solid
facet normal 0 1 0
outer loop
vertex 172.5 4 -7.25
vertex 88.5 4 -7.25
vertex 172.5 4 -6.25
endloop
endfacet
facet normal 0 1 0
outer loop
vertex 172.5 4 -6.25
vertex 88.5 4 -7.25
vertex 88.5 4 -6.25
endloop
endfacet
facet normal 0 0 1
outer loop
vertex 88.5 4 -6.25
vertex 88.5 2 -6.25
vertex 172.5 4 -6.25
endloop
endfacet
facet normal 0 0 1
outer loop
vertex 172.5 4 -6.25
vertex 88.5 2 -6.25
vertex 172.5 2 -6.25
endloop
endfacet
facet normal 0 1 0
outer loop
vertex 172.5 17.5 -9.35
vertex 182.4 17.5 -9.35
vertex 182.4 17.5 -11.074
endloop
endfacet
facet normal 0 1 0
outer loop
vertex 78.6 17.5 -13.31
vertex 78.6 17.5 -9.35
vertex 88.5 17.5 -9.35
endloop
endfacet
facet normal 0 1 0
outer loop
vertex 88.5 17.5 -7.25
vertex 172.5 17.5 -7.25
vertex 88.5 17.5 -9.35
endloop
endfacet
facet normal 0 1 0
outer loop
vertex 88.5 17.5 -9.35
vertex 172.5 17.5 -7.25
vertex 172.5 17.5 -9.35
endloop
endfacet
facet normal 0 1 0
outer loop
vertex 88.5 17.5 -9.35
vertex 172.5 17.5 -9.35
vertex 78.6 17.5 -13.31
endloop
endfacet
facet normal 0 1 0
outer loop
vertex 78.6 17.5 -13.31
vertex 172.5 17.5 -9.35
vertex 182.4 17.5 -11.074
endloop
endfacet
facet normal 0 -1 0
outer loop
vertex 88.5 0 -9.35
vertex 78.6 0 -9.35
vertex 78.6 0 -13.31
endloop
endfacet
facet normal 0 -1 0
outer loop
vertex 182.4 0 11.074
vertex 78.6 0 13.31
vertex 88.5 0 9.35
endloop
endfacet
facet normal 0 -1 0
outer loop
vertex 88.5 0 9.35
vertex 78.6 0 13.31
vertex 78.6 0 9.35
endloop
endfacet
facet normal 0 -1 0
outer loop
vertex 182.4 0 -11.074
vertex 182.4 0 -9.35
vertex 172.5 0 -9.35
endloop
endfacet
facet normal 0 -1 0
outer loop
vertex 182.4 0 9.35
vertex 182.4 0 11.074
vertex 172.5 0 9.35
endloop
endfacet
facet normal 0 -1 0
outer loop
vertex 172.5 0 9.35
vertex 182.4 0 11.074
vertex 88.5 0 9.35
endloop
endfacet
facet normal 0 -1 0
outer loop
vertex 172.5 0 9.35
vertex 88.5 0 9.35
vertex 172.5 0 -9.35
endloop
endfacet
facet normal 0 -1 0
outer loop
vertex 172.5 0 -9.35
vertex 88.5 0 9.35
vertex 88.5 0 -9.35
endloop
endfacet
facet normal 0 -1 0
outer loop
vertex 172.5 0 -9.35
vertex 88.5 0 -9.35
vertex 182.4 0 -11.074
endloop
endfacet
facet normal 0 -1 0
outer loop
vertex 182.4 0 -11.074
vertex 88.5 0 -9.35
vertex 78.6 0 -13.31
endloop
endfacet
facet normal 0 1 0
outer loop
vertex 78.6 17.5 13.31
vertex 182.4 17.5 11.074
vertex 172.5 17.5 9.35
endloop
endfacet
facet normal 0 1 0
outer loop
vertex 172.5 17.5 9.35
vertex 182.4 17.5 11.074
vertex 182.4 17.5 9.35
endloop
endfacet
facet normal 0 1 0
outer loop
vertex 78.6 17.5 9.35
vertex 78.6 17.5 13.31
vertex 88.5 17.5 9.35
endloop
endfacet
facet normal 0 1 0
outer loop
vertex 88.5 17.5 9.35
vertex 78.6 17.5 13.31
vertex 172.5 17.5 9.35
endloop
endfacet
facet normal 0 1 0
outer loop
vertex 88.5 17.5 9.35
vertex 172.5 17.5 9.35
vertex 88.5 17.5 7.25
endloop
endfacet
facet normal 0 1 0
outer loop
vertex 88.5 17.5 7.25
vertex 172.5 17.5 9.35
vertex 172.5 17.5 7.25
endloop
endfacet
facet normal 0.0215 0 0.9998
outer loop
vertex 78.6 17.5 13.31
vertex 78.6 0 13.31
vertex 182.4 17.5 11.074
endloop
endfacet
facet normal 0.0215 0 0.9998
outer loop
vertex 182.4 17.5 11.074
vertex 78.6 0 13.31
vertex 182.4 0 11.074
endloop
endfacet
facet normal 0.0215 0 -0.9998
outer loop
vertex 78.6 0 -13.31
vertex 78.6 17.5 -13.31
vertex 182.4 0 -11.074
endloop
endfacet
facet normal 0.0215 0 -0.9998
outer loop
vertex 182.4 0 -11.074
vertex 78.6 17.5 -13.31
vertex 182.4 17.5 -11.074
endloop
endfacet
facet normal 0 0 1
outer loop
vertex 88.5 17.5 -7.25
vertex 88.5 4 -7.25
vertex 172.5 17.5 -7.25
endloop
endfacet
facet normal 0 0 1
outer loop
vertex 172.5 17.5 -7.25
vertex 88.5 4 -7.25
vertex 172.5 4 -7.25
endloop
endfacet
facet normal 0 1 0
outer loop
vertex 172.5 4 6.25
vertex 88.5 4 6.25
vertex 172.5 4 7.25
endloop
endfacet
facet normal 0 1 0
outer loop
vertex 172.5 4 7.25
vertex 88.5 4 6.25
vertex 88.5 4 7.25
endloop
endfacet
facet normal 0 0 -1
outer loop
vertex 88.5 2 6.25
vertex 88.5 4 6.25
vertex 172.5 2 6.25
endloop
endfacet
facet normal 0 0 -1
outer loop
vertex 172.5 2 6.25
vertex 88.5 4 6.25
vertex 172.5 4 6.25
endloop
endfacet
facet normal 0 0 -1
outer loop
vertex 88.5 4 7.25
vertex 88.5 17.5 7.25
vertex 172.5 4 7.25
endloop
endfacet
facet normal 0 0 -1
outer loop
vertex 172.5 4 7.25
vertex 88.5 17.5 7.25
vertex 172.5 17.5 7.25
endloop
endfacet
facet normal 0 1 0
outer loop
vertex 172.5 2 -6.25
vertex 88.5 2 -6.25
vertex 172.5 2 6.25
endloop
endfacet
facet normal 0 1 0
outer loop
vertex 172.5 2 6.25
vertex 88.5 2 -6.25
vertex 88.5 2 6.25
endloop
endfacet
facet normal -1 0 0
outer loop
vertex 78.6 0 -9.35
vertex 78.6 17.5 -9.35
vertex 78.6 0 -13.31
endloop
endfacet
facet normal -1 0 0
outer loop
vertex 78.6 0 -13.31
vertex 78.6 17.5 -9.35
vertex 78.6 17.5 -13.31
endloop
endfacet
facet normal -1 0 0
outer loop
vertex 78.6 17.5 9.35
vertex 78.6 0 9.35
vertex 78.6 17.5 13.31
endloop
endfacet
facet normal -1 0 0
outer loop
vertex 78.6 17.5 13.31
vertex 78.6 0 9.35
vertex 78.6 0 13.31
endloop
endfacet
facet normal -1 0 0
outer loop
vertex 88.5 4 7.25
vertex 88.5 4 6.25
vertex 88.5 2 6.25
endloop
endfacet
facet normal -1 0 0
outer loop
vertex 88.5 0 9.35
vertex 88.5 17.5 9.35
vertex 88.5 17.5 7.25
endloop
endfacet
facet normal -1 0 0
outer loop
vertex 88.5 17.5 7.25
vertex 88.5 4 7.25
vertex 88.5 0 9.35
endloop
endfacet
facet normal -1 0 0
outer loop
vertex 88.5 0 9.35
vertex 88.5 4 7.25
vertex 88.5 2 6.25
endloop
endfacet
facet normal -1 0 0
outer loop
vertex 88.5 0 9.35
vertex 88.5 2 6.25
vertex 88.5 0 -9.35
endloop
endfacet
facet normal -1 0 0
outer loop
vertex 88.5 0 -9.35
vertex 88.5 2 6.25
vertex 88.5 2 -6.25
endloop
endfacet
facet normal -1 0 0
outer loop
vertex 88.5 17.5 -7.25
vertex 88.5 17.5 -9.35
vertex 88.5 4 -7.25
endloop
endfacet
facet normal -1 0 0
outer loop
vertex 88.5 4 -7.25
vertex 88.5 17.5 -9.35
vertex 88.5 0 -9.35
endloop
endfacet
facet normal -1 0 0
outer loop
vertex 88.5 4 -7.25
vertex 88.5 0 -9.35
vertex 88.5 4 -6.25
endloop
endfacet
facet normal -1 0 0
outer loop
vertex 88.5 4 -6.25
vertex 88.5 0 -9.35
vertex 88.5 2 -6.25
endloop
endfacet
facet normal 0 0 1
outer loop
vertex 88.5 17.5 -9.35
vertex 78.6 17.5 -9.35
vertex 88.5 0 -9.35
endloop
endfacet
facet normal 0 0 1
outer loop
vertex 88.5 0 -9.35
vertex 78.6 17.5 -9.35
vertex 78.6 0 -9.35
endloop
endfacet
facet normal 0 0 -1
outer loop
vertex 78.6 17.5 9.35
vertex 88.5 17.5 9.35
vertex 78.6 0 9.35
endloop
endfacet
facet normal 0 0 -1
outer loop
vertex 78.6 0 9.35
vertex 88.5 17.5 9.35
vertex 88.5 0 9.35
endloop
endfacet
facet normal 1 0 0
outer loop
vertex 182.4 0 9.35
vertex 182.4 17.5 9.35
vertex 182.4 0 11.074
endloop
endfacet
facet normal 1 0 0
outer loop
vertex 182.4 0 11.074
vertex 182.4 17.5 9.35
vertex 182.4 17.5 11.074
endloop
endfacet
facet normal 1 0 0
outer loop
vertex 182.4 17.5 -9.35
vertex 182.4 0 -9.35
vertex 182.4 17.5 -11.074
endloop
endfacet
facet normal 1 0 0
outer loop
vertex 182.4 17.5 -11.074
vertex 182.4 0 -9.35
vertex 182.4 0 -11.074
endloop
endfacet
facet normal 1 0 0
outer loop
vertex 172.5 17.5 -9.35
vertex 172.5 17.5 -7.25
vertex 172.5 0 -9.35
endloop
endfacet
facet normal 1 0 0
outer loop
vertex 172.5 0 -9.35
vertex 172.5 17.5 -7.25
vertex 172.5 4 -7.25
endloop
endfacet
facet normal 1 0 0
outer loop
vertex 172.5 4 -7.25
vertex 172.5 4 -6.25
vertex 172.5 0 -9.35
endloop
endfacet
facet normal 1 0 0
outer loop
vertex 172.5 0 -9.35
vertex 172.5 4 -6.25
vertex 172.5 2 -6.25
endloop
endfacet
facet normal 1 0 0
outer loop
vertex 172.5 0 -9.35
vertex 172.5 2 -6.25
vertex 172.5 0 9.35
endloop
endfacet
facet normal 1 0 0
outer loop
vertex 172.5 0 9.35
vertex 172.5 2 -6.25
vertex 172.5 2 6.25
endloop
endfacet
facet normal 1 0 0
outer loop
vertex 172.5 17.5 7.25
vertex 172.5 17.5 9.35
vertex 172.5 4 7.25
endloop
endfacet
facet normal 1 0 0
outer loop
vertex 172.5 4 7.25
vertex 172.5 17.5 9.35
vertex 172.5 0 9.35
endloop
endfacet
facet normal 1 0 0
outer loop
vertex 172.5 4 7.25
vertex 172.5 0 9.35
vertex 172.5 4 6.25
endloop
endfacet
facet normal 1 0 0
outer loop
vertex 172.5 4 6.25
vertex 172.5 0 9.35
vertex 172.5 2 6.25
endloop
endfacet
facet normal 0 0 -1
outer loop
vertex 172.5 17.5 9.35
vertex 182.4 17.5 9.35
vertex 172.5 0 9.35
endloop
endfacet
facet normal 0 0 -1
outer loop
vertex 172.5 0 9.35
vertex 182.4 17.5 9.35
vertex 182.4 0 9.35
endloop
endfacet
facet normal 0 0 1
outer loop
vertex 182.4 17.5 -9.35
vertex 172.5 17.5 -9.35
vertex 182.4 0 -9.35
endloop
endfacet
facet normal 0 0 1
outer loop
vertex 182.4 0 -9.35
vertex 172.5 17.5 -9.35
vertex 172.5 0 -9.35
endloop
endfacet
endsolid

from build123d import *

# Parameters (mm, degrees)
BOSS_EXTRUDE1_DEPTH     = 17.5
SKETCH2_W               = 252
SKETCH2_H               = 14.5
CUT_EXTRUDE1_DEPTH      = 15.5
SKETCH3_R               = 13
CUT_EXTRUDE2_DEPTH      = 15.5
CUT_EXTRUDE3_REACH      = 264.265
CUT_EXTRUDE3_END_RADIUS = 13
SKETCH5_W               = 252
SKETCH5_H               = 1
BOSS_EXTRUDE2_DEPTH     = 2
SKETCH6_R               = 1
CUT_EXTRUDE4_DEPTH      = 2
CUT_EXTRUDE9_DEPTH      = 278.209870862


with BuildPart() as part:
    # Sketch1 → Boss-Extrude1 (new body)
    with BuildSketch(Plane(origin=(0, 0, 0), x_dir=(1, 0, 0), z_dir=(0, 1, 0))):
        with BuildLine():
            Line((0.323033708, 14.996521237), (267.19920412, 9.247854763))
            ThreePointArc((267.19920412, 9.247854763), (276.25, 0), (267.19920412, -9.247854763))
            Line((267.19920412, -9.247854763), (0.323033708, -14.996521237))
            ThreePointArc((0.323033708, -14.996521237), (-15, 0), (0.323033708, 14.996521237))
        make_face()
    extrude(amount=BOSS_EXTRUDE1_DEPTH)

    # Sketch2 → Cut-Extrude1 (cut)
    with BuildSketch(Plane(origin=(0, 17.5, 0), x_dir=(1, 0, 0), z_dir=(0, 1, 0))):
        with Locations((141, 0)):
            Rectangle(SKETCH2_W, SKETCH2_H)
    extrude(amount=-CUT_EXTRUDE1_DEPTH, mode=Mode.SUBTRACT)

    # Sketch3 → Cut-Extrude2 (cut)
    with BuildSketch(Plane(origin=(0, 17.5, 0), x_dir=(1, 0, 0), z_dir=(0, 1, 0))):
        with Locations(Location((0, 0, 0), (0, 0, 270))):
            Circle(SKETCH3_R)
    extrude(amount=-CUT_EXTRUDE2_DEPTH, mode=Mode.SUBTRACT)

    # Cut-Extrude3: up to this cylinder (the profile starts outside it)
    cut_extrude3_end = Plane(origin=(0, 8.125709, 0), z_dir=(0, 1, 0)) * Cylinder(CUT_EXTRUDE3_END_RADIUS, 555.53, mode=Mode.PRIVATE)
    # Sketch4 → Cut-Extrude3 (cut, up to the surface)
    with BuildSketch(Plane(origin=(15, 0, 0), x_dir=(0, 0, -1), z_dir=(1, 0, 0)), mode=Mode.PRIVATE) as cut_extrude3_sk1:
        with BuildLine():
            Line((-7.25, 2), (7.25, 2))
            Line((7.25, 2), (7.25, 8.5))
            ThreePointArc((7.25, 8.5), (5.199747468, 13.449747468), (0.25, 15.5))
            Line((0.25, 15.5), (-0.25, 15.5))
            ThreePointArc((-0.25, 15.5), (-5.199747468, 13.449747468), (-7.25, 8.5))
            Line((-7.25, 8.5), (-7.25, 2))
        make_face()
    cut_extrude3_tool1 = extrude(cut_extrude3_sk1.sketch, amount=-CUT_EXTRUDE3_REACH, mode=Mode.PRIVATE) - cut_extrude3_end
    add(cut_extrude3_tool1.solids().sort_by_distance((15, 8.125709, 0))[0], mode=Mode.SUBTRACT)

    # Sketch5 → Boss-Extrude2 (add)
    with BuildSketch(Plane(origin=(0, 2, 0), x_dir=(1, 0, 0), z_dir=(0, 1, 0))):
        with Locations((141, 6.75)):
            Rectangle(SKETCH5_W, SKETCH5_H)
        with Locations((141, -6.75)):
            Rectangle(SKETCH5_W, SKETCH5_H)
    extrude(amount=BOSS_EXTRUDE2_DEPTH)

    # Sketch6 → Cut-Extrude4 (cut)
    with BuildSketch(Plane(origin=(0, 2, 0), x_dir=(1, 0, 0), z_dir=(0, 1, 0))):
        with Locations(Location((-5.25, 9.09326674, 0), (0, 0, 270))):
            Circle(SKETCH6_R)
        with Locations(Location((-10.5, 0, 0), (0, 0, 270))):
            Circle(SKETCH6_R)
        with Locations(Location((5.25, 9.09326674, 0), (0, 0, 270))):
            Circle(SKETCH6_R)
        with Locations(Location((10.5, 0, 0), (0, 0, 270))):
            Circle(SKETCH6_R)
        with Locations(Location((5.25, -9.09326674, 0), (0, 0, 270))):
            Circle(SKETCH6_R)
        with Locations(Location((-5.25, -9.09326674, 0), (0, 0, 270))):
            Circle(SKETCH6_R)
        Polygon((0, -10), (8.660254038, -5), (8.660254038, 5), (0, 10), (-8.660254038, 5), (-8.660254038, -5), align=None)
    extrude(amount=-CUT_EXTRUDE4_DEPTH, mode=Mode.SUBTRACT)

    # Sketch14 → Cut-Extrude9 (cut, through all)
    with BuildSketch(Plane(origin=(0, 0, 0), x_dir=(1, 0, 0), z_dir=(0, 1, 0))):
        Polygon((88.5, 9.35), (78.6, 9.35), (78.6, 35), (78.4, 35), (78.4, 9.15), (88.3, 9.15), (88.3, -9.15), (78.4, -9.15), (78.4, -35), (78.6, -35), (78.6, -9.35), (88.5, -9.35), align=None)
        Polygon((172.7, 9.15), (182.6, 9.15), (182.6, 35), (182.4, 35), (182.4, 9.35), (172.5, 9.35), (172.5, 9.25), (172.5, -9.35), (182.4, -9.35), (182.4, -35), (182.6, -35), (182.6, -9.15), (172.7, -9.15), align=None)
    extrude(amount=CUT_EXTRUDE9_DEPTH, mode=Mode.SUBTRACT)


with BuildPart() as cut_extrude9_kept_piece:
    # of the separate pieces the step leaves, the one the design keeps (cut_extrude9_pieces_kept)
    add(part.part.solids().sort_by_distance((182.4, 0, 11.074478478))[0])


solid = cut_extrude9_kept_piece.part
